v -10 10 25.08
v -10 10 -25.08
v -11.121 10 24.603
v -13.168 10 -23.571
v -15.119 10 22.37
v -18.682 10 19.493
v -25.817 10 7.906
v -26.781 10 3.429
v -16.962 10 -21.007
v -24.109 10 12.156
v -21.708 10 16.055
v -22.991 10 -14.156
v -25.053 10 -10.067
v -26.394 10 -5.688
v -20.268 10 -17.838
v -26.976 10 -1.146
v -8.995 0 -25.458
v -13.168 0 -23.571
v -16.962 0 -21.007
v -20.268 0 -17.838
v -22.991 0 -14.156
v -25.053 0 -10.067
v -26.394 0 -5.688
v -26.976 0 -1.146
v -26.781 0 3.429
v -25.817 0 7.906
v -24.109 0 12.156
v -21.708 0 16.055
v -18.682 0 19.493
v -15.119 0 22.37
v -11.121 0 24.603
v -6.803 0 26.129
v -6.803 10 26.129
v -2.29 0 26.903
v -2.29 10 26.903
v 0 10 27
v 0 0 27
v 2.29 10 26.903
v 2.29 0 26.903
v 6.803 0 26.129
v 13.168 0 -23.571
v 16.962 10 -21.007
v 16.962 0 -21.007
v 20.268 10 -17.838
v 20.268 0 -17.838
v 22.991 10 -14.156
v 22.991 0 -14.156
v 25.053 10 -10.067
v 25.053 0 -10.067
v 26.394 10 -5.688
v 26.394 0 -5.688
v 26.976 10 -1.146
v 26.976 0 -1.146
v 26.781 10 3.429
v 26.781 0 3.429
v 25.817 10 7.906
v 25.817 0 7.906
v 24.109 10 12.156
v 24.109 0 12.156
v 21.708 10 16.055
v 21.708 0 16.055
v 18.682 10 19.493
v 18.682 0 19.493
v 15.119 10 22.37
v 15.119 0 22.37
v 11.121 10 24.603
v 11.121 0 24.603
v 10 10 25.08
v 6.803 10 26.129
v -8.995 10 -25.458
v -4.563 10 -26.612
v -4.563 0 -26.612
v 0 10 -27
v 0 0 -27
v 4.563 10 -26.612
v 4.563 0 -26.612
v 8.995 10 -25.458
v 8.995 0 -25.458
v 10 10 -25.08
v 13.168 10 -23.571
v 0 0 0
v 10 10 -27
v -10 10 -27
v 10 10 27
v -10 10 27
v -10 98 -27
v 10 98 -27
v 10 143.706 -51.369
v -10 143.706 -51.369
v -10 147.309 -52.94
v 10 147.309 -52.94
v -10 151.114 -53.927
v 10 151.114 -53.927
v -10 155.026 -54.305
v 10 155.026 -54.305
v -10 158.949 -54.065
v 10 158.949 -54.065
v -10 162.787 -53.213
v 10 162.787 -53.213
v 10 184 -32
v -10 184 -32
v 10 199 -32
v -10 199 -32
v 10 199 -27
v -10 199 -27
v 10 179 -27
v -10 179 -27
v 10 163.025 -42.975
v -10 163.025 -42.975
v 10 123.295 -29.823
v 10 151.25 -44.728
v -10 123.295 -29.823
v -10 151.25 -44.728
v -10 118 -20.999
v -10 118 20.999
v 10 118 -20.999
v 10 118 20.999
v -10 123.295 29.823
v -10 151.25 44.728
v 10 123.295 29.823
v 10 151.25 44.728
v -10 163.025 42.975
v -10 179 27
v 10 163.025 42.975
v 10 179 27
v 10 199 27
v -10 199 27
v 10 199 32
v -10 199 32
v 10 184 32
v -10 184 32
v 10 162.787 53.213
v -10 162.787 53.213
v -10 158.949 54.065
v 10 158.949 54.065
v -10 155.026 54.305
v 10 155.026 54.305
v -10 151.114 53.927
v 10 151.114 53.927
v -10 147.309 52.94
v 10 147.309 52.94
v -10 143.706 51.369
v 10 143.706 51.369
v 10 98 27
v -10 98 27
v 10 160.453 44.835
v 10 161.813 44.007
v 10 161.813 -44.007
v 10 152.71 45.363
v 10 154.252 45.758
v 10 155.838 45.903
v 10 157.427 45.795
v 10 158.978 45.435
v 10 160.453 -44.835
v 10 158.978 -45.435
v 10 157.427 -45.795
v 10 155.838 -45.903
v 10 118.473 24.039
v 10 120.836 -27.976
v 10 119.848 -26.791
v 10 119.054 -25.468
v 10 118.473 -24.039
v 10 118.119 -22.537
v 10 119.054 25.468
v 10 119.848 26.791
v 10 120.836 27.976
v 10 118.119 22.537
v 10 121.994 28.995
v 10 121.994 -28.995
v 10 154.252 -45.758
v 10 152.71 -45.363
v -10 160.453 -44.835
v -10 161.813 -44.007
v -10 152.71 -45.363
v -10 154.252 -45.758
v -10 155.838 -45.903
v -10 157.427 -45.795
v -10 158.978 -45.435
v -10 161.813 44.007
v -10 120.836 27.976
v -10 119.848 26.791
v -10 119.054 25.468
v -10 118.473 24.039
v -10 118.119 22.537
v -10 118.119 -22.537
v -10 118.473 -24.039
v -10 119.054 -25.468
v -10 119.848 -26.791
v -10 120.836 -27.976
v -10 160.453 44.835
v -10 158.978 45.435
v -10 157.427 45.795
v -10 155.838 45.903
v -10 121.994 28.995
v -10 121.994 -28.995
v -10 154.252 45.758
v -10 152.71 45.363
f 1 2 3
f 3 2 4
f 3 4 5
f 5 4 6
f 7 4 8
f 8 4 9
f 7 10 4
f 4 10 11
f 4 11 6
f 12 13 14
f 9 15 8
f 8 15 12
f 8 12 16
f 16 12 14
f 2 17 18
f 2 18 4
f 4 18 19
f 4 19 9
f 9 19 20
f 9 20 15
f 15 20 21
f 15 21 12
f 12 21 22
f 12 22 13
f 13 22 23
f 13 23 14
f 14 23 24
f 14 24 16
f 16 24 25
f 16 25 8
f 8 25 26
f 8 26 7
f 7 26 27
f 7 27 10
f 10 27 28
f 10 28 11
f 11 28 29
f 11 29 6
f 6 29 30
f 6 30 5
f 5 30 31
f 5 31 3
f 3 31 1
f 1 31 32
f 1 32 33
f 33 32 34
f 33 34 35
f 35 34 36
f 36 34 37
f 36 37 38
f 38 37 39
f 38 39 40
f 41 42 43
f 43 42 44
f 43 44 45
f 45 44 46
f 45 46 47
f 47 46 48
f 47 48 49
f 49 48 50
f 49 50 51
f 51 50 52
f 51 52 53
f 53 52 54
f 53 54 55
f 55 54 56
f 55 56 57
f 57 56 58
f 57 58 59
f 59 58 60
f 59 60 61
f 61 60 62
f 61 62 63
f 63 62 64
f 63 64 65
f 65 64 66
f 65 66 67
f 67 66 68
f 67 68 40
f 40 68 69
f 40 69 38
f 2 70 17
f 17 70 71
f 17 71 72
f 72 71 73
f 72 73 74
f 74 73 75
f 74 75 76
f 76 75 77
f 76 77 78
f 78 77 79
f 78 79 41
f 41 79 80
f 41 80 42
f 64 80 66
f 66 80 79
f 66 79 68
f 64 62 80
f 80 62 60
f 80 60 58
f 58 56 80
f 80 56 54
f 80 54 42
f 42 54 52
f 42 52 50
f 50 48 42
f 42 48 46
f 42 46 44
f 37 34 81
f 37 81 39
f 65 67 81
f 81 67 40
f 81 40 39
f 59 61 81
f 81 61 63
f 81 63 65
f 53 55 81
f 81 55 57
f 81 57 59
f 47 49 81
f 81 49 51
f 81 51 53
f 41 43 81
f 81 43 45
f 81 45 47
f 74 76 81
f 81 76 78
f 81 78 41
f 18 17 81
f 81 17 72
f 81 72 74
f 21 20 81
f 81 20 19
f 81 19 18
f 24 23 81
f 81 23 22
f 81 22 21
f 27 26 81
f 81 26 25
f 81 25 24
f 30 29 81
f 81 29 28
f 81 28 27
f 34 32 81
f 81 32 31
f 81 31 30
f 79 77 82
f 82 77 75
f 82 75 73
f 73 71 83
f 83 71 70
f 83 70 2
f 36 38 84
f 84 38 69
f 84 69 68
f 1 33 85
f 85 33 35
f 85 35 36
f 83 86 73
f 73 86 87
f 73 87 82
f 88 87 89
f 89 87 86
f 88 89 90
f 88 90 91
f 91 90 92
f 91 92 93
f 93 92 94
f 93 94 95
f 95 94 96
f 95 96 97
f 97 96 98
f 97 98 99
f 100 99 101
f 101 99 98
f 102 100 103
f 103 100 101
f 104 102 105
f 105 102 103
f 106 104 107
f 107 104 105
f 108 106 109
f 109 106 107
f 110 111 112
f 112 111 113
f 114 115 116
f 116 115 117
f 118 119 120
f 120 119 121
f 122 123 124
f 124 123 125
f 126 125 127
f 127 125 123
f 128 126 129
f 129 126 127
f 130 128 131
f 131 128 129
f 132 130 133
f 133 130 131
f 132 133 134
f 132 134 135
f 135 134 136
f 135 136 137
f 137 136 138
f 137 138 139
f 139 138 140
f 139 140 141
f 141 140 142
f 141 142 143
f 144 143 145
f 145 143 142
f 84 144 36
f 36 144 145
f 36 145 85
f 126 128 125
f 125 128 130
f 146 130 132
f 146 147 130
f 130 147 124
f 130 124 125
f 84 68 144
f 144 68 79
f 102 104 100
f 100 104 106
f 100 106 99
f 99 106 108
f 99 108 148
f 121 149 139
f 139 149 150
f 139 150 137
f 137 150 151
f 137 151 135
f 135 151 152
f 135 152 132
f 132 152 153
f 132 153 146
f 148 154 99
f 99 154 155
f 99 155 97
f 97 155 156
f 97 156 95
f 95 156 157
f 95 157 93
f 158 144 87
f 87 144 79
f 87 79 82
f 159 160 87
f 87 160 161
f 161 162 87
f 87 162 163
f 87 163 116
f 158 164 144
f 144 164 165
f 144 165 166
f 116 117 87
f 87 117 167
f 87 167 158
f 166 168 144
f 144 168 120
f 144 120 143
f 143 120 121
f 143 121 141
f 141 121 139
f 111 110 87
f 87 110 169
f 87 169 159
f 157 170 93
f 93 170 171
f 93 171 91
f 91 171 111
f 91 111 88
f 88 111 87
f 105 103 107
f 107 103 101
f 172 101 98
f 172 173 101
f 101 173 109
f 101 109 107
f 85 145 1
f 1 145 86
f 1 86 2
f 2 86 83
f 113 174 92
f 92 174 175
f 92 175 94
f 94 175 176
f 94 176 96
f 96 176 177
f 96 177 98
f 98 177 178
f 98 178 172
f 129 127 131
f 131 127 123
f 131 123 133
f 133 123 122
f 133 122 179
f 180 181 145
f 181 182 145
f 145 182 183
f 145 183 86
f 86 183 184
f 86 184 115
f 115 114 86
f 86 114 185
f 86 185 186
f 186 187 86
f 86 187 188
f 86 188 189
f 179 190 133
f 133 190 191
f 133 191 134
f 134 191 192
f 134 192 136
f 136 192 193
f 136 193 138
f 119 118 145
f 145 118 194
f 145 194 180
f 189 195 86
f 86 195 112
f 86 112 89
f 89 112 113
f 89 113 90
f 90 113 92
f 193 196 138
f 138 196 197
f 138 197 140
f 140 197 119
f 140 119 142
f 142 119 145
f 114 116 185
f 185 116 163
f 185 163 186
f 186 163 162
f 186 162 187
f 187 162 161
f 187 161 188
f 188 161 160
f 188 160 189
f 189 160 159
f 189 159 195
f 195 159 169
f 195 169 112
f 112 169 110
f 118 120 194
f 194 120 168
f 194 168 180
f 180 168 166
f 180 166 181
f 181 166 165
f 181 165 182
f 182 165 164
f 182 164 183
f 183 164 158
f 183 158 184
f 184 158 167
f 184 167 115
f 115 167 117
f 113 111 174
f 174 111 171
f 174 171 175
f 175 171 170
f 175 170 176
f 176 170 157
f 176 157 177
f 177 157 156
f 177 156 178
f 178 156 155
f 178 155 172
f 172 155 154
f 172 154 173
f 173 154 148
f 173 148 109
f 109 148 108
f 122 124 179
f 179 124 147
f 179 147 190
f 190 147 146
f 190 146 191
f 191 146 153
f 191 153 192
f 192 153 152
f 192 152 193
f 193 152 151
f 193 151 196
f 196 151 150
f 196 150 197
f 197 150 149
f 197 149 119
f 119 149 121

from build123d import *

# Parameters (mm, degrees)
SKETCH2_R           = 27
BOSS_EXTRUDE1_DEPTH = 10
BOSS_EXTRUDE2_DEPTH = 10
FILLET1_R           = 10


with BuildPart() as part:
    # Sketch2 → Boss-Extrude1 (new body)
    with BuildSketch(Plane(origin=(0, 0, 0), x_dir=(1, 0, 0), z_dir=(0, 1, 0))):
        with Locations(Location((0, 0, 0), (0, 0, 270))):
            Circle(SKETCH2_R)
    extrude(amount=BOSS_EXTRUDE1_DEPTH)

    # Sketch3 → Boss-Extrude2 (add, symmetric)
    with BuildSketch(Plane(origin=(0, 0, 0), x_dir=(0, 0, -1), z_dir=(1, 0, 0))):
        with BuildLine():
            Line((27, 10), (-27, 10))
            Line((-27, 10), (-27, 98))
            Line((-27, 98), (-51.368939129, 143.705592112))
            ThreePointArc((-51.368939129, 143.705592112), (-54.192675617, 153.062397712), (-53.213203436, 162.786796564))
            Line((-53.213203436, 162.786796564), (-32, 184))
            Line((-32, 184), (-32, 199))
            Line((-32, 199), (-27, 199))
            Line((-27, 199), (-27, 179))
            Line((-27, 179), (-48.213203436, 157.786796564))
            Line((-48.213203436, 157.786796564), (-27, 118))
            Line((-27, 118), (27, 118))
            Line((27, 118), (48.213203436, 157.786796564))
            Line((48.213203436, 157.786796564), (27, 179))
            Line((27, 179), (27, 199))
            Line((27, 199), (32, 199))
            Line((32, 199), (32, 184))
            Line((32, 184), (53.213203436, 162.786796564))
            ThreePointArc((53.213203436, 162.786796564), (54.192675617, 153.062397712), (51.368939129, 143.705592112))
            Line((51.368939129, 143.705592112), (27, 98))
            Line((27, 98), (27, 10))
        make_face()
    extrude(amount=BOSS_EXTRUDE2_DEPTH, both=True)

    # Fillet1
    fillet1_edges = [part.edges().sort_by_distance(p)[0] for p in [
        (0, 157.786796564, -48.213203436),
        (0, 118, -27),
        (0, 118, 27),
        (0, 157.786796564, 48.213203436),
    ]]
    fillet(fillet1_edges, radius=FILLET1_R)


solid = part.part
